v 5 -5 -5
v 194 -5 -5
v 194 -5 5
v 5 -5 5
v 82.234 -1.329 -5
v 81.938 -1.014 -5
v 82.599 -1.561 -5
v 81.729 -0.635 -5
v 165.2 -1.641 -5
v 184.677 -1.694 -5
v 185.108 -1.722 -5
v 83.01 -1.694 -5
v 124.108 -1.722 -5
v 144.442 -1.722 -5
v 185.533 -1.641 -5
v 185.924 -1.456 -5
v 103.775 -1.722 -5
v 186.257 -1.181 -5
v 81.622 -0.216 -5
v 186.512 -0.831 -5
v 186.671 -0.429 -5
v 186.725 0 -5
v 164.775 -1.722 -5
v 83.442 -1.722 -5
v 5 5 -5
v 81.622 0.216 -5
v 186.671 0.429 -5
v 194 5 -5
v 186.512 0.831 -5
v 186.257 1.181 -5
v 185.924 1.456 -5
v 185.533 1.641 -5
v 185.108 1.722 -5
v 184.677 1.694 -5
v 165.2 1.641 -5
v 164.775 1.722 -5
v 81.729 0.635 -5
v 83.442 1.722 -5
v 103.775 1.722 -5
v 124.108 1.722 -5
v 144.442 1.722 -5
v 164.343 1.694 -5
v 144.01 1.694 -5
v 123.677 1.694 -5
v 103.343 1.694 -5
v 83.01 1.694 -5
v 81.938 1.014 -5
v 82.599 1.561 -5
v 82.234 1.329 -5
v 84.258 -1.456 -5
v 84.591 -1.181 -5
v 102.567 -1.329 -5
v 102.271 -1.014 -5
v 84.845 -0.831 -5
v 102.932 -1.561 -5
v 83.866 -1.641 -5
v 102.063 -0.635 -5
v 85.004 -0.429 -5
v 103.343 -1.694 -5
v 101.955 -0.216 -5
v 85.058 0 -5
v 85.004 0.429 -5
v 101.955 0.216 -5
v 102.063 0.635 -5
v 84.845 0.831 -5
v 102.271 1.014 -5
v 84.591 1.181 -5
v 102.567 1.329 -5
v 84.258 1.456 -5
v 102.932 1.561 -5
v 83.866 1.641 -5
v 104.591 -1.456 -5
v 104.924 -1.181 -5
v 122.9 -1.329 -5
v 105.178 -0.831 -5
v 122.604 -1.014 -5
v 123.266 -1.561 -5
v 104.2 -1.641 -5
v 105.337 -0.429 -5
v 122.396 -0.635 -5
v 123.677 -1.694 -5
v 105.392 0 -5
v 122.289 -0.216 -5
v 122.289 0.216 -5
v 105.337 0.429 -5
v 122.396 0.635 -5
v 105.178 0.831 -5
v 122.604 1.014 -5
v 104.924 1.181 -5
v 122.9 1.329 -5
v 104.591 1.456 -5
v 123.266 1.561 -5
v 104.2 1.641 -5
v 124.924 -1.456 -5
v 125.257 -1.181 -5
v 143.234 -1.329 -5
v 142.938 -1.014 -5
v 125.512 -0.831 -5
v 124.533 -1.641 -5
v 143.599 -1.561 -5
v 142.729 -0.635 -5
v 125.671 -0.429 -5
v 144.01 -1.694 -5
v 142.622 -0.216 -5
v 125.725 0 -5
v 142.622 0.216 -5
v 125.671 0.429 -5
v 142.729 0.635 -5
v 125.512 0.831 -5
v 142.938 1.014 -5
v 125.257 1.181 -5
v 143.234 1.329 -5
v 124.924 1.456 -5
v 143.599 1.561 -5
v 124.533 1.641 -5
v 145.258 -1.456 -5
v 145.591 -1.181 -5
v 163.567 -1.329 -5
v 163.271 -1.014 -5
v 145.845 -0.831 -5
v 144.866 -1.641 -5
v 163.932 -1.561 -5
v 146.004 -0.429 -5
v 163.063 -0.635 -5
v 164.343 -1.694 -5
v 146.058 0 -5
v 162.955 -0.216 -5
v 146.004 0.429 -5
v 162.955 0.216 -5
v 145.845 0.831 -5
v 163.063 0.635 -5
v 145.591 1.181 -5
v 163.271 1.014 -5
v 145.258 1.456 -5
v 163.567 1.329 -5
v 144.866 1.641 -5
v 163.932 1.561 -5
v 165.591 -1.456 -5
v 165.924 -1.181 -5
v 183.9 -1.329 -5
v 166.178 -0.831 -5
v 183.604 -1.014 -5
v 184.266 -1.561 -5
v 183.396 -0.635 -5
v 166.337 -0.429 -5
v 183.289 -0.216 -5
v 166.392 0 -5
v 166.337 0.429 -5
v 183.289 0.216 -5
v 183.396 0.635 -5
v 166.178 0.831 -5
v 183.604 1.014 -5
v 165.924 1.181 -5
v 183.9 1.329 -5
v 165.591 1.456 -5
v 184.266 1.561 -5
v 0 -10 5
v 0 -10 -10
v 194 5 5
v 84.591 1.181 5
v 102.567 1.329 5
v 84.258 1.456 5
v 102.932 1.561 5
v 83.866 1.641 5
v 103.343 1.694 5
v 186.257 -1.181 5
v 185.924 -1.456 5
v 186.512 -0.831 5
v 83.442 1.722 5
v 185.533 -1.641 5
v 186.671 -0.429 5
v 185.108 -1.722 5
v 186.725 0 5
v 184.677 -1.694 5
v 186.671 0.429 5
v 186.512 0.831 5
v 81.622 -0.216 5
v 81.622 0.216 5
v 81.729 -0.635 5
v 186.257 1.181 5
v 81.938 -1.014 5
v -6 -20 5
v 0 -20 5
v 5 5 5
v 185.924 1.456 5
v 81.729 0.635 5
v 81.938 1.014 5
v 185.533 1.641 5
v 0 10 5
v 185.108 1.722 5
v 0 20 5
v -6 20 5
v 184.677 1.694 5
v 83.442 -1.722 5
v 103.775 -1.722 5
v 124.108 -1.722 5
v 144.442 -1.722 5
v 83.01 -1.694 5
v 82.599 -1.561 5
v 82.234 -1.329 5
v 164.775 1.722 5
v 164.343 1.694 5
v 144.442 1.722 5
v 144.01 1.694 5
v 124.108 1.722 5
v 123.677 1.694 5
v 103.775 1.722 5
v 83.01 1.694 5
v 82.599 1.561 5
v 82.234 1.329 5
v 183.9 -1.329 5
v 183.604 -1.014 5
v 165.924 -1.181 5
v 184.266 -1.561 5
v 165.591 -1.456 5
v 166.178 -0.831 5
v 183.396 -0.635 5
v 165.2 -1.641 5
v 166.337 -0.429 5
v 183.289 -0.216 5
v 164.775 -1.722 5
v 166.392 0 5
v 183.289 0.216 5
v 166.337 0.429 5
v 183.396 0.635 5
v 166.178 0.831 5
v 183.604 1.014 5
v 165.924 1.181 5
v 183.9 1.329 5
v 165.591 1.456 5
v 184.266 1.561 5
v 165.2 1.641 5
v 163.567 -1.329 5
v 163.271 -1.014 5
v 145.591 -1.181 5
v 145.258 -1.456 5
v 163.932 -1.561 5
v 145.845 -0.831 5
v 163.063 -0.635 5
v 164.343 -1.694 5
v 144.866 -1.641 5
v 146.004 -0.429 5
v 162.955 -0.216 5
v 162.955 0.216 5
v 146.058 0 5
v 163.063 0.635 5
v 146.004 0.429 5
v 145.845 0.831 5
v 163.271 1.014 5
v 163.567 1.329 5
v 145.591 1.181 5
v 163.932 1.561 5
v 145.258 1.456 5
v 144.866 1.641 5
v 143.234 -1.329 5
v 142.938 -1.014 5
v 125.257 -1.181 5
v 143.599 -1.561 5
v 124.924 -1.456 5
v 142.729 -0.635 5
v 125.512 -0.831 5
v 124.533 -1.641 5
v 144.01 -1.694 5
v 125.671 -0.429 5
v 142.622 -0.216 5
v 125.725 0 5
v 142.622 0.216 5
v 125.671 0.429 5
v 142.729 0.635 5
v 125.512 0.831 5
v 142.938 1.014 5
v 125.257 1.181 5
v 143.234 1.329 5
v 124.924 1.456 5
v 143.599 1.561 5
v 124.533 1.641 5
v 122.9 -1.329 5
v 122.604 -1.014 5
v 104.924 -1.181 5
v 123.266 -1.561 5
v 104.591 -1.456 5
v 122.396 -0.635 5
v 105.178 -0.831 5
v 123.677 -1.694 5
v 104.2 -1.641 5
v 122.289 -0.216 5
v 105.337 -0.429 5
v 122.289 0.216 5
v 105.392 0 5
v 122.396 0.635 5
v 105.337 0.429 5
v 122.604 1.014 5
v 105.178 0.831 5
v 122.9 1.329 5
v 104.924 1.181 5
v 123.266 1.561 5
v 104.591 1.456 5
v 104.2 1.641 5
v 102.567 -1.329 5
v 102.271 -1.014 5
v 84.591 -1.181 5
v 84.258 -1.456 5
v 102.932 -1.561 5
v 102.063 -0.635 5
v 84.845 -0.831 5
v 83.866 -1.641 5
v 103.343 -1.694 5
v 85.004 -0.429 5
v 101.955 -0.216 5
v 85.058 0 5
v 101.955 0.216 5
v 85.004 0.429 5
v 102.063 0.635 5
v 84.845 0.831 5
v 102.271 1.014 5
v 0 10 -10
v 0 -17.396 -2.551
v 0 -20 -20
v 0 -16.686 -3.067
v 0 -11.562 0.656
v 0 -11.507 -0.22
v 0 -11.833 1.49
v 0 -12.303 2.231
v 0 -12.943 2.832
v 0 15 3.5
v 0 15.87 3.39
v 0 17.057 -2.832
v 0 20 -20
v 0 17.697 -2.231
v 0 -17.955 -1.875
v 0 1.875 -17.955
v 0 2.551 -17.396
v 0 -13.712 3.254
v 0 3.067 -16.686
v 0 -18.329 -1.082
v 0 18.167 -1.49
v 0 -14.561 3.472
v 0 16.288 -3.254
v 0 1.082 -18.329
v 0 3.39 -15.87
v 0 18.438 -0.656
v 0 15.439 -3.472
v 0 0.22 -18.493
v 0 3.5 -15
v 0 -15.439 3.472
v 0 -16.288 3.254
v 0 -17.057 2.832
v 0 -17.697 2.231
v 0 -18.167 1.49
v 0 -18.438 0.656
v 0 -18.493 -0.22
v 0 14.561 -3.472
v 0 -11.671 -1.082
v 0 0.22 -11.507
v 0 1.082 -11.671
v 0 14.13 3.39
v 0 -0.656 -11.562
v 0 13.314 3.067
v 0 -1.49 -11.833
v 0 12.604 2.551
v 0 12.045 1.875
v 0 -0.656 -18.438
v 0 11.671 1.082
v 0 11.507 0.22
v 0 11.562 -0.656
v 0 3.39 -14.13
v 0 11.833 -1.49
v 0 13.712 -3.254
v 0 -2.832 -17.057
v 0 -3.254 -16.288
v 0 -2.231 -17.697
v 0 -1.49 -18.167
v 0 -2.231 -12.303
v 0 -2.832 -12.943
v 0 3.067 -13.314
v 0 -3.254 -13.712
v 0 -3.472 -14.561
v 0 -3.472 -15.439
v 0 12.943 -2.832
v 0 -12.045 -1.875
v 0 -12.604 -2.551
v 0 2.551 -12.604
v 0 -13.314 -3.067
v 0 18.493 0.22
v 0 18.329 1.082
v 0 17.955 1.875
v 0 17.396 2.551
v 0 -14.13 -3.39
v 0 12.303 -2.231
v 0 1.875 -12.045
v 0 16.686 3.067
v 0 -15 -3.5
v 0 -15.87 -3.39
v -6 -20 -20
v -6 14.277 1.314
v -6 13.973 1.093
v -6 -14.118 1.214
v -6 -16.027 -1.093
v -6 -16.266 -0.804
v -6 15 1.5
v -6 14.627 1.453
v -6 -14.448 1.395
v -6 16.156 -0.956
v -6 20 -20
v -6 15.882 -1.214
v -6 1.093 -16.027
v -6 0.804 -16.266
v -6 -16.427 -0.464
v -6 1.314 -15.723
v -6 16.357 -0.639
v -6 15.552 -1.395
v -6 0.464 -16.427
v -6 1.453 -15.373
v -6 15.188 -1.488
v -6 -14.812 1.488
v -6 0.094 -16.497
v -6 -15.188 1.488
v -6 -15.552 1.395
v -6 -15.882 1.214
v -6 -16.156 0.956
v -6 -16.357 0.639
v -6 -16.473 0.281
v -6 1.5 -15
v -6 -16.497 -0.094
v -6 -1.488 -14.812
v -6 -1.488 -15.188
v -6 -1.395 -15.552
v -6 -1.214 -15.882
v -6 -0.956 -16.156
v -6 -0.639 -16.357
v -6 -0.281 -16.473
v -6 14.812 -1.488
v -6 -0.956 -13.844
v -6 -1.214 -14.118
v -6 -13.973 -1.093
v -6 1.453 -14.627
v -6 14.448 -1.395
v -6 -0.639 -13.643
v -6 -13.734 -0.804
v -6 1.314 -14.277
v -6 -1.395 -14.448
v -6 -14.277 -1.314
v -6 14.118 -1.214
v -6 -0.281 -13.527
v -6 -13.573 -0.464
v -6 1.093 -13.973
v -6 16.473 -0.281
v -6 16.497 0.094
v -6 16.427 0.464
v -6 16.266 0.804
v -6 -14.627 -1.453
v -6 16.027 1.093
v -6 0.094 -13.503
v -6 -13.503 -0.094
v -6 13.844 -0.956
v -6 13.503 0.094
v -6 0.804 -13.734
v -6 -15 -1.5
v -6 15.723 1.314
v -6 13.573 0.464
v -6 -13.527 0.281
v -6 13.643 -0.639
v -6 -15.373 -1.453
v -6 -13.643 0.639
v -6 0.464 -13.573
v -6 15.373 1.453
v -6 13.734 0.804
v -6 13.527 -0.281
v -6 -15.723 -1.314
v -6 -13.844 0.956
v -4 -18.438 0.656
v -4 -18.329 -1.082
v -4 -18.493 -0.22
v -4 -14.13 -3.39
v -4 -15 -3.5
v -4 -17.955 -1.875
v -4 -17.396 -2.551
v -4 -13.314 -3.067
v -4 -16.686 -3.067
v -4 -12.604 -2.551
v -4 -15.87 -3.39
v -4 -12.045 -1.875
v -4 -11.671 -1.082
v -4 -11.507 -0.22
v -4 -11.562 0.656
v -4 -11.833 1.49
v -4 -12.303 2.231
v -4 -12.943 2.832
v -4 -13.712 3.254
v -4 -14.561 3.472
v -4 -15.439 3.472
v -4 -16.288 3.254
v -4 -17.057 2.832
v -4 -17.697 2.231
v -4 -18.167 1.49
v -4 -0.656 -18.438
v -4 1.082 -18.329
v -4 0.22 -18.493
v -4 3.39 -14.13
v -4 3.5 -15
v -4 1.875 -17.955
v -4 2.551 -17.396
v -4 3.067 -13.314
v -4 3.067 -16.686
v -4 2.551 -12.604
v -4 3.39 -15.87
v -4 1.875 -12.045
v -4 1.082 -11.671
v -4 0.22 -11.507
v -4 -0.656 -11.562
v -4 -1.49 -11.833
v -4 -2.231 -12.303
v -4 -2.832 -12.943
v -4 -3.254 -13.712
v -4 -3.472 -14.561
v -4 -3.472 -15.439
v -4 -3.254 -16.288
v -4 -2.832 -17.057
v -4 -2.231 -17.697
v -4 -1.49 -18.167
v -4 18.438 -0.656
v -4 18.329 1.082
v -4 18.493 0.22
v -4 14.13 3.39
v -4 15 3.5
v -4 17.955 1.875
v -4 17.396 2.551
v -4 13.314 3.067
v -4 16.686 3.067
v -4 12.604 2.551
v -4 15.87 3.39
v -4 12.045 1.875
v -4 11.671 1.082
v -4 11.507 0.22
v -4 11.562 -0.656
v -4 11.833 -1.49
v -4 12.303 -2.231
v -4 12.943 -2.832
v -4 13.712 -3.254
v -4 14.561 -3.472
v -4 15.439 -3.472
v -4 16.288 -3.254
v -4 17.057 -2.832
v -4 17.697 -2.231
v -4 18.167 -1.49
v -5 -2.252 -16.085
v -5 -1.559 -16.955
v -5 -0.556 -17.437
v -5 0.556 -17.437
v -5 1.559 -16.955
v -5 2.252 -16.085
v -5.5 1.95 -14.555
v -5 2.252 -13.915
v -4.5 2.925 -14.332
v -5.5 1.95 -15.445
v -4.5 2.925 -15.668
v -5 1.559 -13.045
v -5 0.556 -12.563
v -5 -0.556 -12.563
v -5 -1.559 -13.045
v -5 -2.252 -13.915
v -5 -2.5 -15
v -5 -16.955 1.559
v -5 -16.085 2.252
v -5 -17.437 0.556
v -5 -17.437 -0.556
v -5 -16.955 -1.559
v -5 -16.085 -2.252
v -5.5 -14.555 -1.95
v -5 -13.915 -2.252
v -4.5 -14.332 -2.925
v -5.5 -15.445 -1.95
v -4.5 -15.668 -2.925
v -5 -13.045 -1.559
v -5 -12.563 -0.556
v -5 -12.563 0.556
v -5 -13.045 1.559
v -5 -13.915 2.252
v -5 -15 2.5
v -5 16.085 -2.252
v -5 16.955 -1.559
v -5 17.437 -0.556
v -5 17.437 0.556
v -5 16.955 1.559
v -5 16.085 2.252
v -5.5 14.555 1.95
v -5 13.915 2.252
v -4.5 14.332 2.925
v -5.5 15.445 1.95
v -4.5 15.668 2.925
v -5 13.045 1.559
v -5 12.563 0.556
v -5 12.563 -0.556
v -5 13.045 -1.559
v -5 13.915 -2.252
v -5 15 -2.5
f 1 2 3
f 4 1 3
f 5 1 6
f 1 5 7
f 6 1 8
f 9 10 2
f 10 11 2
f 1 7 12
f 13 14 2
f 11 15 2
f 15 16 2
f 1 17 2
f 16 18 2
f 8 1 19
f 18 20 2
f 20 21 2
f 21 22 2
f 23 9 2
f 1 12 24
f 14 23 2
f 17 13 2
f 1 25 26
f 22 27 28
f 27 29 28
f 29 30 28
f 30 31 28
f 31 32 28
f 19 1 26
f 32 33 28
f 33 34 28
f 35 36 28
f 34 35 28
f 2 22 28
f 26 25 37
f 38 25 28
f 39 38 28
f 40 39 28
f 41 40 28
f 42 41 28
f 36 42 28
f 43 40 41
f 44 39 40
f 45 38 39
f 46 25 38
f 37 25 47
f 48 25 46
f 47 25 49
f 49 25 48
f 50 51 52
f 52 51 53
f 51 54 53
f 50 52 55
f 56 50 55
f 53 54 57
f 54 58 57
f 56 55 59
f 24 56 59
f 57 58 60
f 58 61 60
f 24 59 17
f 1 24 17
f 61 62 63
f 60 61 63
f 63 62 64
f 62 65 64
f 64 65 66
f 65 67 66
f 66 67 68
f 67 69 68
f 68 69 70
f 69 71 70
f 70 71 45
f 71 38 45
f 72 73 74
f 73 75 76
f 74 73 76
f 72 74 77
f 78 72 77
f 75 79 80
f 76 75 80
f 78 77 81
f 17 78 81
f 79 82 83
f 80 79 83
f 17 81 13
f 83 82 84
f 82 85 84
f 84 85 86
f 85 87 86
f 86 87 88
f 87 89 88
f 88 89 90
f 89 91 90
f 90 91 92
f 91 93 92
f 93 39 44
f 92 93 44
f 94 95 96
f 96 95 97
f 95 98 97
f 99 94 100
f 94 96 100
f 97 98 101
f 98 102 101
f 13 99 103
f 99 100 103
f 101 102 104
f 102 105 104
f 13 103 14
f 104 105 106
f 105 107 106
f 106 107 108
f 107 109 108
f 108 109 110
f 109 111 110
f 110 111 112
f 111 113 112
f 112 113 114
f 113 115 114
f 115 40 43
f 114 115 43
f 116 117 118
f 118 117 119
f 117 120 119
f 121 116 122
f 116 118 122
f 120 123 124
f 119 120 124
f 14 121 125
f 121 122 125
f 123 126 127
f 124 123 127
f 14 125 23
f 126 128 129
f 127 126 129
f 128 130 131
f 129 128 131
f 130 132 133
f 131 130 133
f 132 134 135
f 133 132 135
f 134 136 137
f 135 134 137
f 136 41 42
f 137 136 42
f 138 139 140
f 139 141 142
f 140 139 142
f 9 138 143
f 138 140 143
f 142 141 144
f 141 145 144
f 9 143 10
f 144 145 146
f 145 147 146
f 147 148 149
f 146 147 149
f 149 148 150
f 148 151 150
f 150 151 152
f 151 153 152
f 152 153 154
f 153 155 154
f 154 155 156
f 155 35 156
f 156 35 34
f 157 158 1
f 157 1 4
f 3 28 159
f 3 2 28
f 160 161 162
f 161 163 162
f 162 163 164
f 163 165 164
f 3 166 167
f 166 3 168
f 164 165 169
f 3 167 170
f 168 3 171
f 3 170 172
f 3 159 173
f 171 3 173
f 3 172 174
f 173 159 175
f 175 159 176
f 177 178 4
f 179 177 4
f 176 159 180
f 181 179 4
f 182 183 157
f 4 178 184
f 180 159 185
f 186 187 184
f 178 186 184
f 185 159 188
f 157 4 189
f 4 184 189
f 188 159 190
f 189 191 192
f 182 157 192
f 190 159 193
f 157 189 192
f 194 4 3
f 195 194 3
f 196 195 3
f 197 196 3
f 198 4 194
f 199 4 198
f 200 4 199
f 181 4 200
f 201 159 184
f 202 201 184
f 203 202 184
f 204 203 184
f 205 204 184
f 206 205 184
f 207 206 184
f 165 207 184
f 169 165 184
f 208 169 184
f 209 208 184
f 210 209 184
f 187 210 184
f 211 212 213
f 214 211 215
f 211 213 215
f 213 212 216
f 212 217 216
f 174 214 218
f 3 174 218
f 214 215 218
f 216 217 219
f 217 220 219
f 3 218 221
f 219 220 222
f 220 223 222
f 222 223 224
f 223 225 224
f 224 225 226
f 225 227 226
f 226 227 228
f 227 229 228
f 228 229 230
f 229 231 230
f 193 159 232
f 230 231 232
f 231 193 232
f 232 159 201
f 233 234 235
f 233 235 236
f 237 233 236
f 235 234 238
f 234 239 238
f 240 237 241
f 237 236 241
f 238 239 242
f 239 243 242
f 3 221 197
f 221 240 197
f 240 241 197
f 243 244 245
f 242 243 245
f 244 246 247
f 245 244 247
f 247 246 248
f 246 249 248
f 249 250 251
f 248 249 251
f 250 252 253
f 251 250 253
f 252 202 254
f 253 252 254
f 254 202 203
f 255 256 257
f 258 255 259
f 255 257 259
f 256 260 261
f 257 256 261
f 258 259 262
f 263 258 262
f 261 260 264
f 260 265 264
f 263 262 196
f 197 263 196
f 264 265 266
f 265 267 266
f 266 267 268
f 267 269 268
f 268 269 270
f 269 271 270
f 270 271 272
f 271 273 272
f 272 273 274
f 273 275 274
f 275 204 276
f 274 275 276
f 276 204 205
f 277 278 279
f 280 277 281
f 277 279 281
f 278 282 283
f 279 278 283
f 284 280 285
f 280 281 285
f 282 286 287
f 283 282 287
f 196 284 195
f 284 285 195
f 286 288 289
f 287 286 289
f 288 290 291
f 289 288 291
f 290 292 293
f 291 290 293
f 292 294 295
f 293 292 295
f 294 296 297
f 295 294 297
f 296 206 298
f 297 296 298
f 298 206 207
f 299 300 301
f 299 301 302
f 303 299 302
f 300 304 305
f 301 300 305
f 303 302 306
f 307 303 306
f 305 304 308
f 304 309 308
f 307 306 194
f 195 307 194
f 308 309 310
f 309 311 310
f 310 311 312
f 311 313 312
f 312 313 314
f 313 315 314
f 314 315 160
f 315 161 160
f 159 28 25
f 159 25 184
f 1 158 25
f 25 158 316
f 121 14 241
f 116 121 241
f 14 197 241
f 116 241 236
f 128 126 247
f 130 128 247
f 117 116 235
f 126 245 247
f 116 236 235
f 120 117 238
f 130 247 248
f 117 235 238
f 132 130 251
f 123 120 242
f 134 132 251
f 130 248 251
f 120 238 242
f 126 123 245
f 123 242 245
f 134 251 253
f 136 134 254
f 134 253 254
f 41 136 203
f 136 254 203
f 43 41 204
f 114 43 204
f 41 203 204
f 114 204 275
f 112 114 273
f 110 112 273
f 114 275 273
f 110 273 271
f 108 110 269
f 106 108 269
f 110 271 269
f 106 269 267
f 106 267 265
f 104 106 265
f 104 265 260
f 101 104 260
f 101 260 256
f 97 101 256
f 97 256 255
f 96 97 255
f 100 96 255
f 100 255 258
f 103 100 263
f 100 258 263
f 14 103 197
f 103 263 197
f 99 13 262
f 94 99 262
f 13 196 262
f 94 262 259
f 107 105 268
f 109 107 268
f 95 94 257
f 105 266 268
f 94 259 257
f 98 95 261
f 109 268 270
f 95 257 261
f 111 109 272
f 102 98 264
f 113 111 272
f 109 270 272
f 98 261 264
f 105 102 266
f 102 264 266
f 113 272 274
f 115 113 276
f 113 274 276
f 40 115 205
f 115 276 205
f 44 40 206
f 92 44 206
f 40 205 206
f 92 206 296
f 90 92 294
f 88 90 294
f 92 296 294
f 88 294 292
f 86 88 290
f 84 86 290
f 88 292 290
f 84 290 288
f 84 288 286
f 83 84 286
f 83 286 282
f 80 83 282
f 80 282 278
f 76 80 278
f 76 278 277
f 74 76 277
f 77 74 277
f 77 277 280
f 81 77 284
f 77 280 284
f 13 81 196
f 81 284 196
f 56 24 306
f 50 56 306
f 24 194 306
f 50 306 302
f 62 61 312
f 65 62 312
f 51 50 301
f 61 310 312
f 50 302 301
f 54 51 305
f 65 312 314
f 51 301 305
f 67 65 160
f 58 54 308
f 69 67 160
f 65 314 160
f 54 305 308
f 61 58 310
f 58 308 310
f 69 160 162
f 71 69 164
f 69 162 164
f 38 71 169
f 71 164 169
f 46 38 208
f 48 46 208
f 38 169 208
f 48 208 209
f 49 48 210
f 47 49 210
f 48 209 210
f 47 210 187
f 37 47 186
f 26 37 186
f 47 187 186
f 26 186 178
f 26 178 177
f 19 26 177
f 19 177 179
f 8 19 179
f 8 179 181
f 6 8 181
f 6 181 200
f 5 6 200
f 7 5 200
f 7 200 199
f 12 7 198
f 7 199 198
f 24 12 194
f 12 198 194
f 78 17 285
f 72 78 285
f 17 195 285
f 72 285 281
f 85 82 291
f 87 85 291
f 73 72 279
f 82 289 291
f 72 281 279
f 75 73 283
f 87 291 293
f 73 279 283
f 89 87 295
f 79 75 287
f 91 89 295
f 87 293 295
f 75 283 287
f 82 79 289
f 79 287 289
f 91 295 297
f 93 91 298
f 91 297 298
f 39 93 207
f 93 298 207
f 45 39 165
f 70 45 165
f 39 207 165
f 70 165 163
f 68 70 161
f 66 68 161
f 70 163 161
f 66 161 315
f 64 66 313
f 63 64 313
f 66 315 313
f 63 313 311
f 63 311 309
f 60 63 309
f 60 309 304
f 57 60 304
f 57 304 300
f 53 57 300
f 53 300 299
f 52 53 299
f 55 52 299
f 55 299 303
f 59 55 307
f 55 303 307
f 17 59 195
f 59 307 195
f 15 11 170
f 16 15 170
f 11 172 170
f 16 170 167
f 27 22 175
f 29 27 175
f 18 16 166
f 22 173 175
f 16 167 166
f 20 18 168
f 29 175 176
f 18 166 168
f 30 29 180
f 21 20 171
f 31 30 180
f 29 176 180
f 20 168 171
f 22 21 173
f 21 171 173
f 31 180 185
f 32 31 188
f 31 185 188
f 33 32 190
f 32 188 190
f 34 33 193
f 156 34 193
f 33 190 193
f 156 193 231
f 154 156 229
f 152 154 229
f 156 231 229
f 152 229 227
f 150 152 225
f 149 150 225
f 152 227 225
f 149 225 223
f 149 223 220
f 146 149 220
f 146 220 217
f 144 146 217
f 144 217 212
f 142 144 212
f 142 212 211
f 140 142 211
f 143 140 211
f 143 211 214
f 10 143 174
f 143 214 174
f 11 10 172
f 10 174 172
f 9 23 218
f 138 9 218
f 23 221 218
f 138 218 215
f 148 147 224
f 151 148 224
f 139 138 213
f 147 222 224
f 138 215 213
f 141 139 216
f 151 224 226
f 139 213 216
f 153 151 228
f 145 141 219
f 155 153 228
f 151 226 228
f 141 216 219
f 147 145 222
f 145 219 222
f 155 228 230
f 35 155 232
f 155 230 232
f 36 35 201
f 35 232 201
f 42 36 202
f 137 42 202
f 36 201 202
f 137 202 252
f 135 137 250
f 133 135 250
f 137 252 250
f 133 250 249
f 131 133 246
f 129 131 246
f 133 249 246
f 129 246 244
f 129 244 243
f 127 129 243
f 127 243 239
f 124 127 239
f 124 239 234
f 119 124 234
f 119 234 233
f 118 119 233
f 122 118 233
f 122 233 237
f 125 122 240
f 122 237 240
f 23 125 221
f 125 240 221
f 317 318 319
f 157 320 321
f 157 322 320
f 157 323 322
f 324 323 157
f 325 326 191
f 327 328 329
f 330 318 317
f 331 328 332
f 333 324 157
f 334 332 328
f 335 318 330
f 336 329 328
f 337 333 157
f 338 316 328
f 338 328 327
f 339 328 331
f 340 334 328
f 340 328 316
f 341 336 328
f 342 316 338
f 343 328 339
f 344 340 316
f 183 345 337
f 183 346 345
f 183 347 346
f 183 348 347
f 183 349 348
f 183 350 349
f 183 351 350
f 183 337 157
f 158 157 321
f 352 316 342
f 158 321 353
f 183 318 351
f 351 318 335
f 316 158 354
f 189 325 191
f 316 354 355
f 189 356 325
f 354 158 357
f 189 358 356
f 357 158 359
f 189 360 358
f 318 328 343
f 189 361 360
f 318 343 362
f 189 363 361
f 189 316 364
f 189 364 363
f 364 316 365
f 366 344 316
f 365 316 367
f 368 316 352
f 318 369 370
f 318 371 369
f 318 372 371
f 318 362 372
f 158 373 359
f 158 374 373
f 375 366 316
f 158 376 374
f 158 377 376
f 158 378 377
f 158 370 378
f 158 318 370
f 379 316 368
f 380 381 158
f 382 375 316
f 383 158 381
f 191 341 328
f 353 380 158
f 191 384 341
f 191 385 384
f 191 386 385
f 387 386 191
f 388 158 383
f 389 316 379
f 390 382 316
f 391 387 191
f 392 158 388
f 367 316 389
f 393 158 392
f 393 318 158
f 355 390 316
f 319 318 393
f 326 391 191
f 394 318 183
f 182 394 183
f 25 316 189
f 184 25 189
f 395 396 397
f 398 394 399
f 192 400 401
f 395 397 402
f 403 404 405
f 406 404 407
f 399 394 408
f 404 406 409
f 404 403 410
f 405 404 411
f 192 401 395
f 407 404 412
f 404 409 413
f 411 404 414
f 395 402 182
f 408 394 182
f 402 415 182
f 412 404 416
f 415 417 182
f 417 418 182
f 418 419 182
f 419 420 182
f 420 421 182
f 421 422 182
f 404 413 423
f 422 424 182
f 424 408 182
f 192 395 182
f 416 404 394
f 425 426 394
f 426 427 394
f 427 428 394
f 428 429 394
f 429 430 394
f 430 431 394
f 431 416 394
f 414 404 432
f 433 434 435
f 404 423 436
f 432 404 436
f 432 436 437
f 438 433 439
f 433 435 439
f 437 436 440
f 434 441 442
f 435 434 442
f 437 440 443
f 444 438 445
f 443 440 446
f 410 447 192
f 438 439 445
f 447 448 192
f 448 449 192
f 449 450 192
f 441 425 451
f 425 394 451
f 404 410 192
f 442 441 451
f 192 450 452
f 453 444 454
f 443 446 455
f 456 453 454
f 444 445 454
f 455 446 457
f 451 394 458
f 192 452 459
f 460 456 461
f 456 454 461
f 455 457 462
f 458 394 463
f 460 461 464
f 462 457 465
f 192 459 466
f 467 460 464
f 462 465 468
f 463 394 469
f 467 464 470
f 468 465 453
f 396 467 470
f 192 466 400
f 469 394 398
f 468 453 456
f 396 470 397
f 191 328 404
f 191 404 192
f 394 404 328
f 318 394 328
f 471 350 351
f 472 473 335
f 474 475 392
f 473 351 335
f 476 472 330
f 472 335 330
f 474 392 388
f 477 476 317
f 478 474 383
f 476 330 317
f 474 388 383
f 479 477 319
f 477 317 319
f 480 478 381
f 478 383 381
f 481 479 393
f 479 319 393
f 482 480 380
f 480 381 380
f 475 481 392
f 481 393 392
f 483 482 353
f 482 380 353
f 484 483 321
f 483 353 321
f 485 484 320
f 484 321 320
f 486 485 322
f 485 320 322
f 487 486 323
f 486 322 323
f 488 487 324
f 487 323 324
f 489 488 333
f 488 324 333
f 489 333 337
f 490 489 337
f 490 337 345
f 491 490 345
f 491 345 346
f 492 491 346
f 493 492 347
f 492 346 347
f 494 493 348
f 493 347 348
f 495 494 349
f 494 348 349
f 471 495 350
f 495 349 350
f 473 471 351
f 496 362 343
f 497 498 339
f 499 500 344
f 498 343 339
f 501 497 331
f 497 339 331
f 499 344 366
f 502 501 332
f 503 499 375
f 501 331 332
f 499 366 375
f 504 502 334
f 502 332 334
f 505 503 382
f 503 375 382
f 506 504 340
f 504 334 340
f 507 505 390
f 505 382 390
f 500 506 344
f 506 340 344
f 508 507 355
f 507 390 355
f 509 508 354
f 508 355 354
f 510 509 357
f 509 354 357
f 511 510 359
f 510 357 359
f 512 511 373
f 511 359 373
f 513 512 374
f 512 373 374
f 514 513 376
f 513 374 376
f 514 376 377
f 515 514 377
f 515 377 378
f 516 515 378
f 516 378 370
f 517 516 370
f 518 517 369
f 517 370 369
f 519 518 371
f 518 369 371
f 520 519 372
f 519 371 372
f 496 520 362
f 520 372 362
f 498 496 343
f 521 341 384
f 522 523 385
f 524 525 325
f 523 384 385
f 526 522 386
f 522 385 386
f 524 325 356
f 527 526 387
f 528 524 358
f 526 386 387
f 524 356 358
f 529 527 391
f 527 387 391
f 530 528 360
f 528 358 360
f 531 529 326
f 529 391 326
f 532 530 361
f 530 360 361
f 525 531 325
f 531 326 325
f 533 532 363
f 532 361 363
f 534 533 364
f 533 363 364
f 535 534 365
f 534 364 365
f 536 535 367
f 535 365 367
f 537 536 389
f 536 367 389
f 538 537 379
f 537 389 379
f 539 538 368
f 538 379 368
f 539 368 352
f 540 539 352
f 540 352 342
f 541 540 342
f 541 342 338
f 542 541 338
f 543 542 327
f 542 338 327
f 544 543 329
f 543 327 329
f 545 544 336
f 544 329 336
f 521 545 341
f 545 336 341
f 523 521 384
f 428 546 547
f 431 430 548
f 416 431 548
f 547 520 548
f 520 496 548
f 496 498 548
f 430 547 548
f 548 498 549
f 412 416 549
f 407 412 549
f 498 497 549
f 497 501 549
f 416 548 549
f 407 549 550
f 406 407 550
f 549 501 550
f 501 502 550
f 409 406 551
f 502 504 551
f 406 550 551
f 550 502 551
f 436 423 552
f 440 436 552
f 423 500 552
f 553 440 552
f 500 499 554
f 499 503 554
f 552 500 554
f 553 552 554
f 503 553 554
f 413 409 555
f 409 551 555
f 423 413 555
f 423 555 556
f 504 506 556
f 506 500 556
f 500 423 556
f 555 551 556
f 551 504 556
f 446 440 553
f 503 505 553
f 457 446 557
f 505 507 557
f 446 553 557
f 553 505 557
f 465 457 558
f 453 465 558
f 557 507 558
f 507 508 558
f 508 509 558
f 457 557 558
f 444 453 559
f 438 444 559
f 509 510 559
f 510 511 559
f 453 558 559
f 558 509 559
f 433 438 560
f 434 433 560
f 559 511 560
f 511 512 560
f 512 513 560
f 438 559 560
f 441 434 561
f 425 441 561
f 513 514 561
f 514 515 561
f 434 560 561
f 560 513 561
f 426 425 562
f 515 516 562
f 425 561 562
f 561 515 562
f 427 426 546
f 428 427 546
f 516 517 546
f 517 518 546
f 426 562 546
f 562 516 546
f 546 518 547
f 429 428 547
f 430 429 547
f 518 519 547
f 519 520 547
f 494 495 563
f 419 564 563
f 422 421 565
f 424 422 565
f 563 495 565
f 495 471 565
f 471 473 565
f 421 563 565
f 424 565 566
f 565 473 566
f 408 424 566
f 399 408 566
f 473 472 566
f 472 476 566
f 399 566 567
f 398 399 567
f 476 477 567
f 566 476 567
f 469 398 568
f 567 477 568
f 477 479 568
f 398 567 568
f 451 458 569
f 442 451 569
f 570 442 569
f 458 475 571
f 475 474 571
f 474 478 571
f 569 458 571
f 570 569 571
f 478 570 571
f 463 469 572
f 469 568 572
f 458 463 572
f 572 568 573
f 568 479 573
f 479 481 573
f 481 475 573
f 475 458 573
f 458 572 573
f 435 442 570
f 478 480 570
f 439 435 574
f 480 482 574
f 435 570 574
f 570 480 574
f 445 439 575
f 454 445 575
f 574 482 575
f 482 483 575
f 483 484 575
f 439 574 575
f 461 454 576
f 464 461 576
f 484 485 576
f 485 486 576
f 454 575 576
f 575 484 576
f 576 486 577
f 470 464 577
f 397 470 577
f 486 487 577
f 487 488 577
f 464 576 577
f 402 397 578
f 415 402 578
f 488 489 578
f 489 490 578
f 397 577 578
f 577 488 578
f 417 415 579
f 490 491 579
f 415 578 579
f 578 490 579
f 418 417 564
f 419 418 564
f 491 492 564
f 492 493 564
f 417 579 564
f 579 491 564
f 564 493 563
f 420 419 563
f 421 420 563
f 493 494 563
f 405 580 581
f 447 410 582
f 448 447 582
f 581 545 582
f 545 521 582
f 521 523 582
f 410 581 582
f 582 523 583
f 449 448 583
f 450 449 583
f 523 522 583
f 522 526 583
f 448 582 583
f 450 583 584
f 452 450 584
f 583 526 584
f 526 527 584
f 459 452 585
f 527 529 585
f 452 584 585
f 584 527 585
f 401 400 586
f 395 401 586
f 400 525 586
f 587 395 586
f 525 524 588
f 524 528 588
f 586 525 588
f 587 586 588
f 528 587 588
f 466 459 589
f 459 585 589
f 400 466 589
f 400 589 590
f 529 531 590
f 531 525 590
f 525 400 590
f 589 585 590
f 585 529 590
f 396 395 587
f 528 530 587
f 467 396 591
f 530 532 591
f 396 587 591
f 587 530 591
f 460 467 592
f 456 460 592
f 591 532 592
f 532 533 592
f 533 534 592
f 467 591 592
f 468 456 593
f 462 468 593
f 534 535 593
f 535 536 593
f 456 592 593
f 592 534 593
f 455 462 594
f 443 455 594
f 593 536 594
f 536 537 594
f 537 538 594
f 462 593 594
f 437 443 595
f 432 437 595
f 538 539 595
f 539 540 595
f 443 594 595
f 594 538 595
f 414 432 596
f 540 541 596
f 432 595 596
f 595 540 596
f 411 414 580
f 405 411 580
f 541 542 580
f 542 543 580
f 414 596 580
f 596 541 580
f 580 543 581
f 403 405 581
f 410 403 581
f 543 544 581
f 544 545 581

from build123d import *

# Parameters (mm, degrees)
CYLINDER002_R         = 3.5
CYLINDER002_DEPTH     = 10
CYLINDER001_R         = 1.5
CYLINDER001_DEPTH     = 10
FUSION001_PITCH_ANGLE = 90
ARRAY001_COUNT        = 4
BOX002_W              = 6
BOX002_H              = 40
BOX002_DEPTH          = 25
CYLINDER_R            = 1.725
CYLINDER_DEPTH        = 10
ARRAY_X_COUNT         = 6
ARRAY_X_PITCH         = 20.333333
BOX_W                 = 194
BOX_H                 = 10
BOX_DEPTH             = 10
CHAMFER_SIZE          = 5


with BuildPart() as cylinder002:
    # Cylinder002 → Cylinder002 (new body)
    with BuildSketch(Plane(origin=(15, -5, 8), x_dir=(1, 0, 0), z_dir=(0, 0, 1))):
        Circle(CYLINDER002_R)
    extrude(amount=CYLINDER002_DEPTH)


with BuildPart() as cone:
    # Cone → Cone (revolve)
    with BuildSketch(Plane(origin=(15, -5, 6), x_dir=(1, 0, 0), z_dir=(0, -1, 0))):
        Polygon((0, 0), (1.5, 0), (3.5, 2), (0, 2), align=None)
    revolve(axis=Axis((15, -5, 6), (0, 0, 1)))


with BuildPart() as array001:
    # Cylinder001 → Cylinder001 (new body)
    with BuildSketch(Plane(origin=(15, -5, 0), x_dir=(1, 0, 0), z_dir=(0, 0, 1))):
        Circle(CYLINDER001_R)
    extrude(amount=CYLINDER001_DEPTH)

    # Fusion001: union Cylinder002, Cone
    add(cylinder002.part)
    add(cone.part)


with BuildPart() as array001_1:
    # Fusion001 pitch: moved
    add(array001.part.rotate(Axis((0, 0, 0), (0, 1, 0)), FUSION001_PITCH_ANGLE))


with BuildPart() as array001_2:
    # Fusion001 placement: moved
    add(array001_1.part.moved(Location((0, -10, 15))))

    # Array001: Array001 ×4 about axis
    array001_axis = Axis((0, 0, 0), (1, 0, 0))


with BuildPart() as array001_3:
    add(array001_2.part)
    for i in range(1, ARRAY001_COUNT):
        add(array001_2.part.rotate(array001_axis, i * 360 / ARRAY001_COUNT))


with BuildPart() as array001_4:
    # Array001 placement: moved
    add(array001_3.part.moved(Location((-6, 0, 0))))


with BuildPart() as cut001:
    # Box002 → Box002 (new body)
    with BuildSketch(Plane(origin=(0, -20, -20), x_dir=(1, 0, 0), z_dir=(0, 0, 1))):
        with Locations((3, 20)):
            Rectangle(BOX002_W, BOX002_H)
    extrude(amount=BOX002_DEPTH)

    # Cut001: cut Array001
    add(array001_4.part, mode=Mode.SUBTRACT)


with BuildPart() as cut001_1:
    # Cut001 placement: moved
    add(cut001.part.moved(Location((-6, 0, 0))))


with BuildPart() as array:
    # Cylinder → Cylinder (new body)
    with BuildSketch(Plane(origin=(185, 5, 0), x_dir=(1, 0, 0), z_dir=(0, 0, 1))):
        Circle(CYLINDER_R)
    extrude(amount=CYLINDER_DEPTH)

    # Array X: Array ×6


with BuildPart() as array_1:
    add(array.part)
    with Locations(*[(-i * ARRAY_X_PITCH, 0, 0) for i in range(1, ARRAY_X_COUNT)]):
        add(array.part)


with BuildPart() as chamfer_body:
    # Box → Box (new body)
    with BuildSketch(Plane.XY):
        with Locations((97, 5)):
            Rectangle(BOX_W, BOX_H)
    extrude(amount=BOX_DEPTH)

    # Cut: cut Array
    add(array_1.part, mode=Mode.SUBTRACT)


with BuildPart() as chamfer_body_1:
    # Cut placement: moved
    add(chamfer_body.part.moved(Location((0, -5, -5))))

    # Fusion: union Cut001
    add(cut001_1.part)

    # Chamfer
    chamfer_edges = [chamfer_body_1.edges().sort_by_distance(p)[0] for p in [
        (0, -5, 0),
        (0, 5, 0),
        (0, 0, -5),
    ]]
    chamfer(chamfer_edges, length=CHAMFER_SIZE)


solid = chamfer_body_1.part
